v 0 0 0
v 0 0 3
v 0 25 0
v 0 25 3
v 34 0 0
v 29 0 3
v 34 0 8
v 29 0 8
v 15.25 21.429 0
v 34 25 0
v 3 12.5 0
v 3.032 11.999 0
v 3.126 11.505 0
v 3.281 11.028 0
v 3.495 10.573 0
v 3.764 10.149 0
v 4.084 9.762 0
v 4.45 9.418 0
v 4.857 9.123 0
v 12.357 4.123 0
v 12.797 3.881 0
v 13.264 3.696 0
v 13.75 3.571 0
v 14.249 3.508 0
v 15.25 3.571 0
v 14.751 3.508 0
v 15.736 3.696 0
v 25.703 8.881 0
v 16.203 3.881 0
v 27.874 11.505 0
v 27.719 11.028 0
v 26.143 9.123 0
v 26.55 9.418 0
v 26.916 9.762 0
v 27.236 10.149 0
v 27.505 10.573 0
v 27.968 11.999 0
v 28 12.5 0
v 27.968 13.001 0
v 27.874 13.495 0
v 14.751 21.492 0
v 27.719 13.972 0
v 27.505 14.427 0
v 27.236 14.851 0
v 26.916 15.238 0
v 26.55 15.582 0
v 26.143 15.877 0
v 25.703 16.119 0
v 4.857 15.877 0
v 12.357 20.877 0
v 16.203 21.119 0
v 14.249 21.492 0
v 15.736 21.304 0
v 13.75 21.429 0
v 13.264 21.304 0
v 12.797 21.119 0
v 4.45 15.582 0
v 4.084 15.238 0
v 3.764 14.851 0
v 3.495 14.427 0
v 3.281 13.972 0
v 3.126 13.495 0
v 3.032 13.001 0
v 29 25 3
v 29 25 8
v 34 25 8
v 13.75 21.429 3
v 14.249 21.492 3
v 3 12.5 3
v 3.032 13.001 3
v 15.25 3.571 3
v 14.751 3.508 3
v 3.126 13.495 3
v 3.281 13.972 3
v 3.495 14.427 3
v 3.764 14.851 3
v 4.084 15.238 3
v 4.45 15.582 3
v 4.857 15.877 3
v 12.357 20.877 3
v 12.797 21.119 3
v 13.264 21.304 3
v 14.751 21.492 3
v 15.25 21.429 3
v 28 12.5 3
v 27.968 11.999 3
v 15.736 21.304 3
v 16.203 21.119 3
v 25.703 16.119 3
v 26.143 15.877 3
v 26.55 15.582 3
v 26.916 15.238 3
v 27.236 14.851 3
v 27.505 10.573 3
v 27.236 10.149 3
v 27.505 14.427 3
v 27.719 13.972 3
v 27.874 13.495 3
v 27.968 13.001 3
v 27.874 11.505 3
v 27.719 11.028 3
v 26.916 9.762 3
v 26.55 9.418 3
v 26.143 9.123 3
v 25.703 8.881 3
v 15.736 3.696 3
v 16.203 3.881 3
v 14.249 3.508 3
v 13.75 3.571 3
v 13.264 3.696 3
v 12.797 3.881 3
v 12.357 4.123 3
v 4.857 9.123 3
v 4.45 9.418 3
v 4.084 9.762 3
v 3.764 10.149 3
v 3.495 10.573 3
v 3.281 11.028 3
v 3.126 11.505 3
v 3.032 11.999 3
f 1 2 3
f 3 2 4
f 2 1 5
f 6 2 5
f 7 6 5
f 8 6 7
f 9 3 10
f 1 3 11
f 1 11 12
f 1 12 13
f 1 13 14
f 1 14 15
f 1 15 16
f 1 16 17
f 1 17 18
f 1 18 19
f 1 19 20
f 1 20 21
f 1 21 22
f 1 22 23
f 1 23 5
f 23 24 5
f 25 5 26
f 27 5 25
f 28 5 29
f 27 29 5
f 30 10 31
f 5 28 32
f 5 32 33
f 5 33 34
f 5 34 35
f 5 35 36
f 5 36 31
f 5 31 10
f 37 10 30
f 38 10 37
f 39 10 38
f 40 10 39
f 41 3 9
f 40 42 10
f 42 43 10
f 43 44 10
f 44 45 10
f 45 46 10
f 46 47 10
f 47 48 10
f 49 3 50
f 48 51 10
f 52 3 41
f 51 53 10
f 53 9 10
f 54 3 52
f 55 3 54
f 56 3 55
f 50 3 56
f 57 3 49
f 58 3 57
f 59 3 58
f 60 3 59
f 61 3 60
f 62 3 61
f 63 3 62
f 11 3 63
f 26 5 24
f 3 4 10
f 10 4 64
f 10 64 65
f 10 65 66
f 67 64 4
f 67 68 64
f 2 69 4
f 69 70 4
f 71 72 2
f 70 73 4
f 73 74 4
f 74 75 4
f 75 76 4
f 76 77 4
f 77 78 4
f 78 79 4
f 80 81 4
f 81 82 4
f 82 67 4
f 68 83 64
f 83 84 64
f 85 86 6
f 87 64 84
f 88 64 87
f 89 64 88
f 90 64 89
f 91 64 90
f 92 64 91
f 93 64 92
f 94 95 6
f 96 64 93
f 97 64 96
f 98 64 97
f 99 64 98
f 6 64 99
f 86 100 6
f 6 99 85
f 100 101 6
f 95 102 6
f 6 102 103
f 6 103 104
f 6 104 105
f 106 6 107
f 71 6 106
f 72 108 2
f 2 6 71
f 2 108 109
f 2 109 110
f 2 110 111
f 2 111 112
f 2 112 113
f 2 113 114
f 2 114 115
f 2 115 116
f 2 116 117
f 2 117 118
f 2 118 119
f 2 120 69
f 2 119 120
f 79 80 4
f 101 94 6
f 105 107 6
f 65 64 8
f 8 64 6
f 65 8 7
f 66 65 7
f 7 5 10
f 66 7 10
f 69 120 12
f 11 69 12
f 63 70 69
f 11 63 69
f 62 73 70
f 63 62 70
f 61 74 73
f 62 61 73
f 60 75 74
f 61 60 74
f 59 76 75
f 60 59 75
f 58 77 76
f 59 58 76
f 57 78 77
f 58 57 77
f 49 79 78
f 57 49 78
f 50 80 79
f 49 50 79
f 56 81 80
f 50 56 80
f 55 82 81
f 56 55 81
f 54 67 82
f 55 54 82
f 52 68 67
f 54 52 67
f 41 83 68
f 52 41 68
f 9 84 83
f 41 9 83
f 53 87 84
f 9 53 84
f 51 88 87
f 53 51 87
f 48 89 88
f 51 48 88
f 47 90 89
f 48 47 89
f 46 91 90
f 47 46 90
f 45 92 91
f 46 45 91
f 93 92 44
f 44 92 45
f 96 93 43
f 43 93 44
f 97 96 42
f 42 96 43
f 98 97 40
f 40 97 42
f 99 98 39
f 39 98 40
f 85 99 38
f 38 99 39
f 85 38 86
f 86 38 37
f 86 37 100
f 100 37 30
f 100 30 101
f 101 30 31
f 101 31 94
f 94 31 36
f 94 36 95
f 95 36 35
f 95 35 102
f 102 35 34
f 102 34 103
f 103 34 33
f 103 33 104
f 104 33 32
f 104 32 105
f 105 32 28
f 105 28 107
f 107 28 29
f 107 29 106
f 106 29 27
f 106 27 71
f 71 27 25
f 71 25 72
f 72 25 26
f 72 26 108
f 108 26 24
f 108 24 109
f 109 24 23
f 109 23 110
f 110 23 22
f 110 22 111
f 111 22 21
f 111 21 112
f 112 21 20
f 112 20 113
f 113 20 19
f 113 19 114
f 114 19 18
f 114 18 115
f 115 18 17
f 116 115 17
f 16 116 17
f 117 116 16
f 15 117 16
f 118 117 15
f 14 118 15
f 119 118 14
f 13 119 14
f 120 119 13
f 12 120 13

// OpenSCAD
ep1=3;
ep2=ep1+5;
hauteur=34;
largeur=25;
r_trou=4;


module support_rangement(){
	difference(){
		cube([hauteur,largeur,ep2]);

		translate([-5,-5,ep1]){cube([hauteur,largeur+10,ep2]);}

		hull(){
			translate([7,largeur/2,-5]){cylinder(r=r_trou, h=10, $fn=50);}
			translate([hauteur-10,largeur/2,-5]){cylinder(r=r_trou, h=10, $fn=50);}
			translate([hauteur/2-2.5,largeur/2+5,-5]){cylinder(r=r_trou, h=10, $fn=50);}
			translate([hauteur/2-2.5,largeur/2-5,-5]){cylinder(r=r_trou, h=10, $fn=50);}

		}
	}

}
support_rangement();
